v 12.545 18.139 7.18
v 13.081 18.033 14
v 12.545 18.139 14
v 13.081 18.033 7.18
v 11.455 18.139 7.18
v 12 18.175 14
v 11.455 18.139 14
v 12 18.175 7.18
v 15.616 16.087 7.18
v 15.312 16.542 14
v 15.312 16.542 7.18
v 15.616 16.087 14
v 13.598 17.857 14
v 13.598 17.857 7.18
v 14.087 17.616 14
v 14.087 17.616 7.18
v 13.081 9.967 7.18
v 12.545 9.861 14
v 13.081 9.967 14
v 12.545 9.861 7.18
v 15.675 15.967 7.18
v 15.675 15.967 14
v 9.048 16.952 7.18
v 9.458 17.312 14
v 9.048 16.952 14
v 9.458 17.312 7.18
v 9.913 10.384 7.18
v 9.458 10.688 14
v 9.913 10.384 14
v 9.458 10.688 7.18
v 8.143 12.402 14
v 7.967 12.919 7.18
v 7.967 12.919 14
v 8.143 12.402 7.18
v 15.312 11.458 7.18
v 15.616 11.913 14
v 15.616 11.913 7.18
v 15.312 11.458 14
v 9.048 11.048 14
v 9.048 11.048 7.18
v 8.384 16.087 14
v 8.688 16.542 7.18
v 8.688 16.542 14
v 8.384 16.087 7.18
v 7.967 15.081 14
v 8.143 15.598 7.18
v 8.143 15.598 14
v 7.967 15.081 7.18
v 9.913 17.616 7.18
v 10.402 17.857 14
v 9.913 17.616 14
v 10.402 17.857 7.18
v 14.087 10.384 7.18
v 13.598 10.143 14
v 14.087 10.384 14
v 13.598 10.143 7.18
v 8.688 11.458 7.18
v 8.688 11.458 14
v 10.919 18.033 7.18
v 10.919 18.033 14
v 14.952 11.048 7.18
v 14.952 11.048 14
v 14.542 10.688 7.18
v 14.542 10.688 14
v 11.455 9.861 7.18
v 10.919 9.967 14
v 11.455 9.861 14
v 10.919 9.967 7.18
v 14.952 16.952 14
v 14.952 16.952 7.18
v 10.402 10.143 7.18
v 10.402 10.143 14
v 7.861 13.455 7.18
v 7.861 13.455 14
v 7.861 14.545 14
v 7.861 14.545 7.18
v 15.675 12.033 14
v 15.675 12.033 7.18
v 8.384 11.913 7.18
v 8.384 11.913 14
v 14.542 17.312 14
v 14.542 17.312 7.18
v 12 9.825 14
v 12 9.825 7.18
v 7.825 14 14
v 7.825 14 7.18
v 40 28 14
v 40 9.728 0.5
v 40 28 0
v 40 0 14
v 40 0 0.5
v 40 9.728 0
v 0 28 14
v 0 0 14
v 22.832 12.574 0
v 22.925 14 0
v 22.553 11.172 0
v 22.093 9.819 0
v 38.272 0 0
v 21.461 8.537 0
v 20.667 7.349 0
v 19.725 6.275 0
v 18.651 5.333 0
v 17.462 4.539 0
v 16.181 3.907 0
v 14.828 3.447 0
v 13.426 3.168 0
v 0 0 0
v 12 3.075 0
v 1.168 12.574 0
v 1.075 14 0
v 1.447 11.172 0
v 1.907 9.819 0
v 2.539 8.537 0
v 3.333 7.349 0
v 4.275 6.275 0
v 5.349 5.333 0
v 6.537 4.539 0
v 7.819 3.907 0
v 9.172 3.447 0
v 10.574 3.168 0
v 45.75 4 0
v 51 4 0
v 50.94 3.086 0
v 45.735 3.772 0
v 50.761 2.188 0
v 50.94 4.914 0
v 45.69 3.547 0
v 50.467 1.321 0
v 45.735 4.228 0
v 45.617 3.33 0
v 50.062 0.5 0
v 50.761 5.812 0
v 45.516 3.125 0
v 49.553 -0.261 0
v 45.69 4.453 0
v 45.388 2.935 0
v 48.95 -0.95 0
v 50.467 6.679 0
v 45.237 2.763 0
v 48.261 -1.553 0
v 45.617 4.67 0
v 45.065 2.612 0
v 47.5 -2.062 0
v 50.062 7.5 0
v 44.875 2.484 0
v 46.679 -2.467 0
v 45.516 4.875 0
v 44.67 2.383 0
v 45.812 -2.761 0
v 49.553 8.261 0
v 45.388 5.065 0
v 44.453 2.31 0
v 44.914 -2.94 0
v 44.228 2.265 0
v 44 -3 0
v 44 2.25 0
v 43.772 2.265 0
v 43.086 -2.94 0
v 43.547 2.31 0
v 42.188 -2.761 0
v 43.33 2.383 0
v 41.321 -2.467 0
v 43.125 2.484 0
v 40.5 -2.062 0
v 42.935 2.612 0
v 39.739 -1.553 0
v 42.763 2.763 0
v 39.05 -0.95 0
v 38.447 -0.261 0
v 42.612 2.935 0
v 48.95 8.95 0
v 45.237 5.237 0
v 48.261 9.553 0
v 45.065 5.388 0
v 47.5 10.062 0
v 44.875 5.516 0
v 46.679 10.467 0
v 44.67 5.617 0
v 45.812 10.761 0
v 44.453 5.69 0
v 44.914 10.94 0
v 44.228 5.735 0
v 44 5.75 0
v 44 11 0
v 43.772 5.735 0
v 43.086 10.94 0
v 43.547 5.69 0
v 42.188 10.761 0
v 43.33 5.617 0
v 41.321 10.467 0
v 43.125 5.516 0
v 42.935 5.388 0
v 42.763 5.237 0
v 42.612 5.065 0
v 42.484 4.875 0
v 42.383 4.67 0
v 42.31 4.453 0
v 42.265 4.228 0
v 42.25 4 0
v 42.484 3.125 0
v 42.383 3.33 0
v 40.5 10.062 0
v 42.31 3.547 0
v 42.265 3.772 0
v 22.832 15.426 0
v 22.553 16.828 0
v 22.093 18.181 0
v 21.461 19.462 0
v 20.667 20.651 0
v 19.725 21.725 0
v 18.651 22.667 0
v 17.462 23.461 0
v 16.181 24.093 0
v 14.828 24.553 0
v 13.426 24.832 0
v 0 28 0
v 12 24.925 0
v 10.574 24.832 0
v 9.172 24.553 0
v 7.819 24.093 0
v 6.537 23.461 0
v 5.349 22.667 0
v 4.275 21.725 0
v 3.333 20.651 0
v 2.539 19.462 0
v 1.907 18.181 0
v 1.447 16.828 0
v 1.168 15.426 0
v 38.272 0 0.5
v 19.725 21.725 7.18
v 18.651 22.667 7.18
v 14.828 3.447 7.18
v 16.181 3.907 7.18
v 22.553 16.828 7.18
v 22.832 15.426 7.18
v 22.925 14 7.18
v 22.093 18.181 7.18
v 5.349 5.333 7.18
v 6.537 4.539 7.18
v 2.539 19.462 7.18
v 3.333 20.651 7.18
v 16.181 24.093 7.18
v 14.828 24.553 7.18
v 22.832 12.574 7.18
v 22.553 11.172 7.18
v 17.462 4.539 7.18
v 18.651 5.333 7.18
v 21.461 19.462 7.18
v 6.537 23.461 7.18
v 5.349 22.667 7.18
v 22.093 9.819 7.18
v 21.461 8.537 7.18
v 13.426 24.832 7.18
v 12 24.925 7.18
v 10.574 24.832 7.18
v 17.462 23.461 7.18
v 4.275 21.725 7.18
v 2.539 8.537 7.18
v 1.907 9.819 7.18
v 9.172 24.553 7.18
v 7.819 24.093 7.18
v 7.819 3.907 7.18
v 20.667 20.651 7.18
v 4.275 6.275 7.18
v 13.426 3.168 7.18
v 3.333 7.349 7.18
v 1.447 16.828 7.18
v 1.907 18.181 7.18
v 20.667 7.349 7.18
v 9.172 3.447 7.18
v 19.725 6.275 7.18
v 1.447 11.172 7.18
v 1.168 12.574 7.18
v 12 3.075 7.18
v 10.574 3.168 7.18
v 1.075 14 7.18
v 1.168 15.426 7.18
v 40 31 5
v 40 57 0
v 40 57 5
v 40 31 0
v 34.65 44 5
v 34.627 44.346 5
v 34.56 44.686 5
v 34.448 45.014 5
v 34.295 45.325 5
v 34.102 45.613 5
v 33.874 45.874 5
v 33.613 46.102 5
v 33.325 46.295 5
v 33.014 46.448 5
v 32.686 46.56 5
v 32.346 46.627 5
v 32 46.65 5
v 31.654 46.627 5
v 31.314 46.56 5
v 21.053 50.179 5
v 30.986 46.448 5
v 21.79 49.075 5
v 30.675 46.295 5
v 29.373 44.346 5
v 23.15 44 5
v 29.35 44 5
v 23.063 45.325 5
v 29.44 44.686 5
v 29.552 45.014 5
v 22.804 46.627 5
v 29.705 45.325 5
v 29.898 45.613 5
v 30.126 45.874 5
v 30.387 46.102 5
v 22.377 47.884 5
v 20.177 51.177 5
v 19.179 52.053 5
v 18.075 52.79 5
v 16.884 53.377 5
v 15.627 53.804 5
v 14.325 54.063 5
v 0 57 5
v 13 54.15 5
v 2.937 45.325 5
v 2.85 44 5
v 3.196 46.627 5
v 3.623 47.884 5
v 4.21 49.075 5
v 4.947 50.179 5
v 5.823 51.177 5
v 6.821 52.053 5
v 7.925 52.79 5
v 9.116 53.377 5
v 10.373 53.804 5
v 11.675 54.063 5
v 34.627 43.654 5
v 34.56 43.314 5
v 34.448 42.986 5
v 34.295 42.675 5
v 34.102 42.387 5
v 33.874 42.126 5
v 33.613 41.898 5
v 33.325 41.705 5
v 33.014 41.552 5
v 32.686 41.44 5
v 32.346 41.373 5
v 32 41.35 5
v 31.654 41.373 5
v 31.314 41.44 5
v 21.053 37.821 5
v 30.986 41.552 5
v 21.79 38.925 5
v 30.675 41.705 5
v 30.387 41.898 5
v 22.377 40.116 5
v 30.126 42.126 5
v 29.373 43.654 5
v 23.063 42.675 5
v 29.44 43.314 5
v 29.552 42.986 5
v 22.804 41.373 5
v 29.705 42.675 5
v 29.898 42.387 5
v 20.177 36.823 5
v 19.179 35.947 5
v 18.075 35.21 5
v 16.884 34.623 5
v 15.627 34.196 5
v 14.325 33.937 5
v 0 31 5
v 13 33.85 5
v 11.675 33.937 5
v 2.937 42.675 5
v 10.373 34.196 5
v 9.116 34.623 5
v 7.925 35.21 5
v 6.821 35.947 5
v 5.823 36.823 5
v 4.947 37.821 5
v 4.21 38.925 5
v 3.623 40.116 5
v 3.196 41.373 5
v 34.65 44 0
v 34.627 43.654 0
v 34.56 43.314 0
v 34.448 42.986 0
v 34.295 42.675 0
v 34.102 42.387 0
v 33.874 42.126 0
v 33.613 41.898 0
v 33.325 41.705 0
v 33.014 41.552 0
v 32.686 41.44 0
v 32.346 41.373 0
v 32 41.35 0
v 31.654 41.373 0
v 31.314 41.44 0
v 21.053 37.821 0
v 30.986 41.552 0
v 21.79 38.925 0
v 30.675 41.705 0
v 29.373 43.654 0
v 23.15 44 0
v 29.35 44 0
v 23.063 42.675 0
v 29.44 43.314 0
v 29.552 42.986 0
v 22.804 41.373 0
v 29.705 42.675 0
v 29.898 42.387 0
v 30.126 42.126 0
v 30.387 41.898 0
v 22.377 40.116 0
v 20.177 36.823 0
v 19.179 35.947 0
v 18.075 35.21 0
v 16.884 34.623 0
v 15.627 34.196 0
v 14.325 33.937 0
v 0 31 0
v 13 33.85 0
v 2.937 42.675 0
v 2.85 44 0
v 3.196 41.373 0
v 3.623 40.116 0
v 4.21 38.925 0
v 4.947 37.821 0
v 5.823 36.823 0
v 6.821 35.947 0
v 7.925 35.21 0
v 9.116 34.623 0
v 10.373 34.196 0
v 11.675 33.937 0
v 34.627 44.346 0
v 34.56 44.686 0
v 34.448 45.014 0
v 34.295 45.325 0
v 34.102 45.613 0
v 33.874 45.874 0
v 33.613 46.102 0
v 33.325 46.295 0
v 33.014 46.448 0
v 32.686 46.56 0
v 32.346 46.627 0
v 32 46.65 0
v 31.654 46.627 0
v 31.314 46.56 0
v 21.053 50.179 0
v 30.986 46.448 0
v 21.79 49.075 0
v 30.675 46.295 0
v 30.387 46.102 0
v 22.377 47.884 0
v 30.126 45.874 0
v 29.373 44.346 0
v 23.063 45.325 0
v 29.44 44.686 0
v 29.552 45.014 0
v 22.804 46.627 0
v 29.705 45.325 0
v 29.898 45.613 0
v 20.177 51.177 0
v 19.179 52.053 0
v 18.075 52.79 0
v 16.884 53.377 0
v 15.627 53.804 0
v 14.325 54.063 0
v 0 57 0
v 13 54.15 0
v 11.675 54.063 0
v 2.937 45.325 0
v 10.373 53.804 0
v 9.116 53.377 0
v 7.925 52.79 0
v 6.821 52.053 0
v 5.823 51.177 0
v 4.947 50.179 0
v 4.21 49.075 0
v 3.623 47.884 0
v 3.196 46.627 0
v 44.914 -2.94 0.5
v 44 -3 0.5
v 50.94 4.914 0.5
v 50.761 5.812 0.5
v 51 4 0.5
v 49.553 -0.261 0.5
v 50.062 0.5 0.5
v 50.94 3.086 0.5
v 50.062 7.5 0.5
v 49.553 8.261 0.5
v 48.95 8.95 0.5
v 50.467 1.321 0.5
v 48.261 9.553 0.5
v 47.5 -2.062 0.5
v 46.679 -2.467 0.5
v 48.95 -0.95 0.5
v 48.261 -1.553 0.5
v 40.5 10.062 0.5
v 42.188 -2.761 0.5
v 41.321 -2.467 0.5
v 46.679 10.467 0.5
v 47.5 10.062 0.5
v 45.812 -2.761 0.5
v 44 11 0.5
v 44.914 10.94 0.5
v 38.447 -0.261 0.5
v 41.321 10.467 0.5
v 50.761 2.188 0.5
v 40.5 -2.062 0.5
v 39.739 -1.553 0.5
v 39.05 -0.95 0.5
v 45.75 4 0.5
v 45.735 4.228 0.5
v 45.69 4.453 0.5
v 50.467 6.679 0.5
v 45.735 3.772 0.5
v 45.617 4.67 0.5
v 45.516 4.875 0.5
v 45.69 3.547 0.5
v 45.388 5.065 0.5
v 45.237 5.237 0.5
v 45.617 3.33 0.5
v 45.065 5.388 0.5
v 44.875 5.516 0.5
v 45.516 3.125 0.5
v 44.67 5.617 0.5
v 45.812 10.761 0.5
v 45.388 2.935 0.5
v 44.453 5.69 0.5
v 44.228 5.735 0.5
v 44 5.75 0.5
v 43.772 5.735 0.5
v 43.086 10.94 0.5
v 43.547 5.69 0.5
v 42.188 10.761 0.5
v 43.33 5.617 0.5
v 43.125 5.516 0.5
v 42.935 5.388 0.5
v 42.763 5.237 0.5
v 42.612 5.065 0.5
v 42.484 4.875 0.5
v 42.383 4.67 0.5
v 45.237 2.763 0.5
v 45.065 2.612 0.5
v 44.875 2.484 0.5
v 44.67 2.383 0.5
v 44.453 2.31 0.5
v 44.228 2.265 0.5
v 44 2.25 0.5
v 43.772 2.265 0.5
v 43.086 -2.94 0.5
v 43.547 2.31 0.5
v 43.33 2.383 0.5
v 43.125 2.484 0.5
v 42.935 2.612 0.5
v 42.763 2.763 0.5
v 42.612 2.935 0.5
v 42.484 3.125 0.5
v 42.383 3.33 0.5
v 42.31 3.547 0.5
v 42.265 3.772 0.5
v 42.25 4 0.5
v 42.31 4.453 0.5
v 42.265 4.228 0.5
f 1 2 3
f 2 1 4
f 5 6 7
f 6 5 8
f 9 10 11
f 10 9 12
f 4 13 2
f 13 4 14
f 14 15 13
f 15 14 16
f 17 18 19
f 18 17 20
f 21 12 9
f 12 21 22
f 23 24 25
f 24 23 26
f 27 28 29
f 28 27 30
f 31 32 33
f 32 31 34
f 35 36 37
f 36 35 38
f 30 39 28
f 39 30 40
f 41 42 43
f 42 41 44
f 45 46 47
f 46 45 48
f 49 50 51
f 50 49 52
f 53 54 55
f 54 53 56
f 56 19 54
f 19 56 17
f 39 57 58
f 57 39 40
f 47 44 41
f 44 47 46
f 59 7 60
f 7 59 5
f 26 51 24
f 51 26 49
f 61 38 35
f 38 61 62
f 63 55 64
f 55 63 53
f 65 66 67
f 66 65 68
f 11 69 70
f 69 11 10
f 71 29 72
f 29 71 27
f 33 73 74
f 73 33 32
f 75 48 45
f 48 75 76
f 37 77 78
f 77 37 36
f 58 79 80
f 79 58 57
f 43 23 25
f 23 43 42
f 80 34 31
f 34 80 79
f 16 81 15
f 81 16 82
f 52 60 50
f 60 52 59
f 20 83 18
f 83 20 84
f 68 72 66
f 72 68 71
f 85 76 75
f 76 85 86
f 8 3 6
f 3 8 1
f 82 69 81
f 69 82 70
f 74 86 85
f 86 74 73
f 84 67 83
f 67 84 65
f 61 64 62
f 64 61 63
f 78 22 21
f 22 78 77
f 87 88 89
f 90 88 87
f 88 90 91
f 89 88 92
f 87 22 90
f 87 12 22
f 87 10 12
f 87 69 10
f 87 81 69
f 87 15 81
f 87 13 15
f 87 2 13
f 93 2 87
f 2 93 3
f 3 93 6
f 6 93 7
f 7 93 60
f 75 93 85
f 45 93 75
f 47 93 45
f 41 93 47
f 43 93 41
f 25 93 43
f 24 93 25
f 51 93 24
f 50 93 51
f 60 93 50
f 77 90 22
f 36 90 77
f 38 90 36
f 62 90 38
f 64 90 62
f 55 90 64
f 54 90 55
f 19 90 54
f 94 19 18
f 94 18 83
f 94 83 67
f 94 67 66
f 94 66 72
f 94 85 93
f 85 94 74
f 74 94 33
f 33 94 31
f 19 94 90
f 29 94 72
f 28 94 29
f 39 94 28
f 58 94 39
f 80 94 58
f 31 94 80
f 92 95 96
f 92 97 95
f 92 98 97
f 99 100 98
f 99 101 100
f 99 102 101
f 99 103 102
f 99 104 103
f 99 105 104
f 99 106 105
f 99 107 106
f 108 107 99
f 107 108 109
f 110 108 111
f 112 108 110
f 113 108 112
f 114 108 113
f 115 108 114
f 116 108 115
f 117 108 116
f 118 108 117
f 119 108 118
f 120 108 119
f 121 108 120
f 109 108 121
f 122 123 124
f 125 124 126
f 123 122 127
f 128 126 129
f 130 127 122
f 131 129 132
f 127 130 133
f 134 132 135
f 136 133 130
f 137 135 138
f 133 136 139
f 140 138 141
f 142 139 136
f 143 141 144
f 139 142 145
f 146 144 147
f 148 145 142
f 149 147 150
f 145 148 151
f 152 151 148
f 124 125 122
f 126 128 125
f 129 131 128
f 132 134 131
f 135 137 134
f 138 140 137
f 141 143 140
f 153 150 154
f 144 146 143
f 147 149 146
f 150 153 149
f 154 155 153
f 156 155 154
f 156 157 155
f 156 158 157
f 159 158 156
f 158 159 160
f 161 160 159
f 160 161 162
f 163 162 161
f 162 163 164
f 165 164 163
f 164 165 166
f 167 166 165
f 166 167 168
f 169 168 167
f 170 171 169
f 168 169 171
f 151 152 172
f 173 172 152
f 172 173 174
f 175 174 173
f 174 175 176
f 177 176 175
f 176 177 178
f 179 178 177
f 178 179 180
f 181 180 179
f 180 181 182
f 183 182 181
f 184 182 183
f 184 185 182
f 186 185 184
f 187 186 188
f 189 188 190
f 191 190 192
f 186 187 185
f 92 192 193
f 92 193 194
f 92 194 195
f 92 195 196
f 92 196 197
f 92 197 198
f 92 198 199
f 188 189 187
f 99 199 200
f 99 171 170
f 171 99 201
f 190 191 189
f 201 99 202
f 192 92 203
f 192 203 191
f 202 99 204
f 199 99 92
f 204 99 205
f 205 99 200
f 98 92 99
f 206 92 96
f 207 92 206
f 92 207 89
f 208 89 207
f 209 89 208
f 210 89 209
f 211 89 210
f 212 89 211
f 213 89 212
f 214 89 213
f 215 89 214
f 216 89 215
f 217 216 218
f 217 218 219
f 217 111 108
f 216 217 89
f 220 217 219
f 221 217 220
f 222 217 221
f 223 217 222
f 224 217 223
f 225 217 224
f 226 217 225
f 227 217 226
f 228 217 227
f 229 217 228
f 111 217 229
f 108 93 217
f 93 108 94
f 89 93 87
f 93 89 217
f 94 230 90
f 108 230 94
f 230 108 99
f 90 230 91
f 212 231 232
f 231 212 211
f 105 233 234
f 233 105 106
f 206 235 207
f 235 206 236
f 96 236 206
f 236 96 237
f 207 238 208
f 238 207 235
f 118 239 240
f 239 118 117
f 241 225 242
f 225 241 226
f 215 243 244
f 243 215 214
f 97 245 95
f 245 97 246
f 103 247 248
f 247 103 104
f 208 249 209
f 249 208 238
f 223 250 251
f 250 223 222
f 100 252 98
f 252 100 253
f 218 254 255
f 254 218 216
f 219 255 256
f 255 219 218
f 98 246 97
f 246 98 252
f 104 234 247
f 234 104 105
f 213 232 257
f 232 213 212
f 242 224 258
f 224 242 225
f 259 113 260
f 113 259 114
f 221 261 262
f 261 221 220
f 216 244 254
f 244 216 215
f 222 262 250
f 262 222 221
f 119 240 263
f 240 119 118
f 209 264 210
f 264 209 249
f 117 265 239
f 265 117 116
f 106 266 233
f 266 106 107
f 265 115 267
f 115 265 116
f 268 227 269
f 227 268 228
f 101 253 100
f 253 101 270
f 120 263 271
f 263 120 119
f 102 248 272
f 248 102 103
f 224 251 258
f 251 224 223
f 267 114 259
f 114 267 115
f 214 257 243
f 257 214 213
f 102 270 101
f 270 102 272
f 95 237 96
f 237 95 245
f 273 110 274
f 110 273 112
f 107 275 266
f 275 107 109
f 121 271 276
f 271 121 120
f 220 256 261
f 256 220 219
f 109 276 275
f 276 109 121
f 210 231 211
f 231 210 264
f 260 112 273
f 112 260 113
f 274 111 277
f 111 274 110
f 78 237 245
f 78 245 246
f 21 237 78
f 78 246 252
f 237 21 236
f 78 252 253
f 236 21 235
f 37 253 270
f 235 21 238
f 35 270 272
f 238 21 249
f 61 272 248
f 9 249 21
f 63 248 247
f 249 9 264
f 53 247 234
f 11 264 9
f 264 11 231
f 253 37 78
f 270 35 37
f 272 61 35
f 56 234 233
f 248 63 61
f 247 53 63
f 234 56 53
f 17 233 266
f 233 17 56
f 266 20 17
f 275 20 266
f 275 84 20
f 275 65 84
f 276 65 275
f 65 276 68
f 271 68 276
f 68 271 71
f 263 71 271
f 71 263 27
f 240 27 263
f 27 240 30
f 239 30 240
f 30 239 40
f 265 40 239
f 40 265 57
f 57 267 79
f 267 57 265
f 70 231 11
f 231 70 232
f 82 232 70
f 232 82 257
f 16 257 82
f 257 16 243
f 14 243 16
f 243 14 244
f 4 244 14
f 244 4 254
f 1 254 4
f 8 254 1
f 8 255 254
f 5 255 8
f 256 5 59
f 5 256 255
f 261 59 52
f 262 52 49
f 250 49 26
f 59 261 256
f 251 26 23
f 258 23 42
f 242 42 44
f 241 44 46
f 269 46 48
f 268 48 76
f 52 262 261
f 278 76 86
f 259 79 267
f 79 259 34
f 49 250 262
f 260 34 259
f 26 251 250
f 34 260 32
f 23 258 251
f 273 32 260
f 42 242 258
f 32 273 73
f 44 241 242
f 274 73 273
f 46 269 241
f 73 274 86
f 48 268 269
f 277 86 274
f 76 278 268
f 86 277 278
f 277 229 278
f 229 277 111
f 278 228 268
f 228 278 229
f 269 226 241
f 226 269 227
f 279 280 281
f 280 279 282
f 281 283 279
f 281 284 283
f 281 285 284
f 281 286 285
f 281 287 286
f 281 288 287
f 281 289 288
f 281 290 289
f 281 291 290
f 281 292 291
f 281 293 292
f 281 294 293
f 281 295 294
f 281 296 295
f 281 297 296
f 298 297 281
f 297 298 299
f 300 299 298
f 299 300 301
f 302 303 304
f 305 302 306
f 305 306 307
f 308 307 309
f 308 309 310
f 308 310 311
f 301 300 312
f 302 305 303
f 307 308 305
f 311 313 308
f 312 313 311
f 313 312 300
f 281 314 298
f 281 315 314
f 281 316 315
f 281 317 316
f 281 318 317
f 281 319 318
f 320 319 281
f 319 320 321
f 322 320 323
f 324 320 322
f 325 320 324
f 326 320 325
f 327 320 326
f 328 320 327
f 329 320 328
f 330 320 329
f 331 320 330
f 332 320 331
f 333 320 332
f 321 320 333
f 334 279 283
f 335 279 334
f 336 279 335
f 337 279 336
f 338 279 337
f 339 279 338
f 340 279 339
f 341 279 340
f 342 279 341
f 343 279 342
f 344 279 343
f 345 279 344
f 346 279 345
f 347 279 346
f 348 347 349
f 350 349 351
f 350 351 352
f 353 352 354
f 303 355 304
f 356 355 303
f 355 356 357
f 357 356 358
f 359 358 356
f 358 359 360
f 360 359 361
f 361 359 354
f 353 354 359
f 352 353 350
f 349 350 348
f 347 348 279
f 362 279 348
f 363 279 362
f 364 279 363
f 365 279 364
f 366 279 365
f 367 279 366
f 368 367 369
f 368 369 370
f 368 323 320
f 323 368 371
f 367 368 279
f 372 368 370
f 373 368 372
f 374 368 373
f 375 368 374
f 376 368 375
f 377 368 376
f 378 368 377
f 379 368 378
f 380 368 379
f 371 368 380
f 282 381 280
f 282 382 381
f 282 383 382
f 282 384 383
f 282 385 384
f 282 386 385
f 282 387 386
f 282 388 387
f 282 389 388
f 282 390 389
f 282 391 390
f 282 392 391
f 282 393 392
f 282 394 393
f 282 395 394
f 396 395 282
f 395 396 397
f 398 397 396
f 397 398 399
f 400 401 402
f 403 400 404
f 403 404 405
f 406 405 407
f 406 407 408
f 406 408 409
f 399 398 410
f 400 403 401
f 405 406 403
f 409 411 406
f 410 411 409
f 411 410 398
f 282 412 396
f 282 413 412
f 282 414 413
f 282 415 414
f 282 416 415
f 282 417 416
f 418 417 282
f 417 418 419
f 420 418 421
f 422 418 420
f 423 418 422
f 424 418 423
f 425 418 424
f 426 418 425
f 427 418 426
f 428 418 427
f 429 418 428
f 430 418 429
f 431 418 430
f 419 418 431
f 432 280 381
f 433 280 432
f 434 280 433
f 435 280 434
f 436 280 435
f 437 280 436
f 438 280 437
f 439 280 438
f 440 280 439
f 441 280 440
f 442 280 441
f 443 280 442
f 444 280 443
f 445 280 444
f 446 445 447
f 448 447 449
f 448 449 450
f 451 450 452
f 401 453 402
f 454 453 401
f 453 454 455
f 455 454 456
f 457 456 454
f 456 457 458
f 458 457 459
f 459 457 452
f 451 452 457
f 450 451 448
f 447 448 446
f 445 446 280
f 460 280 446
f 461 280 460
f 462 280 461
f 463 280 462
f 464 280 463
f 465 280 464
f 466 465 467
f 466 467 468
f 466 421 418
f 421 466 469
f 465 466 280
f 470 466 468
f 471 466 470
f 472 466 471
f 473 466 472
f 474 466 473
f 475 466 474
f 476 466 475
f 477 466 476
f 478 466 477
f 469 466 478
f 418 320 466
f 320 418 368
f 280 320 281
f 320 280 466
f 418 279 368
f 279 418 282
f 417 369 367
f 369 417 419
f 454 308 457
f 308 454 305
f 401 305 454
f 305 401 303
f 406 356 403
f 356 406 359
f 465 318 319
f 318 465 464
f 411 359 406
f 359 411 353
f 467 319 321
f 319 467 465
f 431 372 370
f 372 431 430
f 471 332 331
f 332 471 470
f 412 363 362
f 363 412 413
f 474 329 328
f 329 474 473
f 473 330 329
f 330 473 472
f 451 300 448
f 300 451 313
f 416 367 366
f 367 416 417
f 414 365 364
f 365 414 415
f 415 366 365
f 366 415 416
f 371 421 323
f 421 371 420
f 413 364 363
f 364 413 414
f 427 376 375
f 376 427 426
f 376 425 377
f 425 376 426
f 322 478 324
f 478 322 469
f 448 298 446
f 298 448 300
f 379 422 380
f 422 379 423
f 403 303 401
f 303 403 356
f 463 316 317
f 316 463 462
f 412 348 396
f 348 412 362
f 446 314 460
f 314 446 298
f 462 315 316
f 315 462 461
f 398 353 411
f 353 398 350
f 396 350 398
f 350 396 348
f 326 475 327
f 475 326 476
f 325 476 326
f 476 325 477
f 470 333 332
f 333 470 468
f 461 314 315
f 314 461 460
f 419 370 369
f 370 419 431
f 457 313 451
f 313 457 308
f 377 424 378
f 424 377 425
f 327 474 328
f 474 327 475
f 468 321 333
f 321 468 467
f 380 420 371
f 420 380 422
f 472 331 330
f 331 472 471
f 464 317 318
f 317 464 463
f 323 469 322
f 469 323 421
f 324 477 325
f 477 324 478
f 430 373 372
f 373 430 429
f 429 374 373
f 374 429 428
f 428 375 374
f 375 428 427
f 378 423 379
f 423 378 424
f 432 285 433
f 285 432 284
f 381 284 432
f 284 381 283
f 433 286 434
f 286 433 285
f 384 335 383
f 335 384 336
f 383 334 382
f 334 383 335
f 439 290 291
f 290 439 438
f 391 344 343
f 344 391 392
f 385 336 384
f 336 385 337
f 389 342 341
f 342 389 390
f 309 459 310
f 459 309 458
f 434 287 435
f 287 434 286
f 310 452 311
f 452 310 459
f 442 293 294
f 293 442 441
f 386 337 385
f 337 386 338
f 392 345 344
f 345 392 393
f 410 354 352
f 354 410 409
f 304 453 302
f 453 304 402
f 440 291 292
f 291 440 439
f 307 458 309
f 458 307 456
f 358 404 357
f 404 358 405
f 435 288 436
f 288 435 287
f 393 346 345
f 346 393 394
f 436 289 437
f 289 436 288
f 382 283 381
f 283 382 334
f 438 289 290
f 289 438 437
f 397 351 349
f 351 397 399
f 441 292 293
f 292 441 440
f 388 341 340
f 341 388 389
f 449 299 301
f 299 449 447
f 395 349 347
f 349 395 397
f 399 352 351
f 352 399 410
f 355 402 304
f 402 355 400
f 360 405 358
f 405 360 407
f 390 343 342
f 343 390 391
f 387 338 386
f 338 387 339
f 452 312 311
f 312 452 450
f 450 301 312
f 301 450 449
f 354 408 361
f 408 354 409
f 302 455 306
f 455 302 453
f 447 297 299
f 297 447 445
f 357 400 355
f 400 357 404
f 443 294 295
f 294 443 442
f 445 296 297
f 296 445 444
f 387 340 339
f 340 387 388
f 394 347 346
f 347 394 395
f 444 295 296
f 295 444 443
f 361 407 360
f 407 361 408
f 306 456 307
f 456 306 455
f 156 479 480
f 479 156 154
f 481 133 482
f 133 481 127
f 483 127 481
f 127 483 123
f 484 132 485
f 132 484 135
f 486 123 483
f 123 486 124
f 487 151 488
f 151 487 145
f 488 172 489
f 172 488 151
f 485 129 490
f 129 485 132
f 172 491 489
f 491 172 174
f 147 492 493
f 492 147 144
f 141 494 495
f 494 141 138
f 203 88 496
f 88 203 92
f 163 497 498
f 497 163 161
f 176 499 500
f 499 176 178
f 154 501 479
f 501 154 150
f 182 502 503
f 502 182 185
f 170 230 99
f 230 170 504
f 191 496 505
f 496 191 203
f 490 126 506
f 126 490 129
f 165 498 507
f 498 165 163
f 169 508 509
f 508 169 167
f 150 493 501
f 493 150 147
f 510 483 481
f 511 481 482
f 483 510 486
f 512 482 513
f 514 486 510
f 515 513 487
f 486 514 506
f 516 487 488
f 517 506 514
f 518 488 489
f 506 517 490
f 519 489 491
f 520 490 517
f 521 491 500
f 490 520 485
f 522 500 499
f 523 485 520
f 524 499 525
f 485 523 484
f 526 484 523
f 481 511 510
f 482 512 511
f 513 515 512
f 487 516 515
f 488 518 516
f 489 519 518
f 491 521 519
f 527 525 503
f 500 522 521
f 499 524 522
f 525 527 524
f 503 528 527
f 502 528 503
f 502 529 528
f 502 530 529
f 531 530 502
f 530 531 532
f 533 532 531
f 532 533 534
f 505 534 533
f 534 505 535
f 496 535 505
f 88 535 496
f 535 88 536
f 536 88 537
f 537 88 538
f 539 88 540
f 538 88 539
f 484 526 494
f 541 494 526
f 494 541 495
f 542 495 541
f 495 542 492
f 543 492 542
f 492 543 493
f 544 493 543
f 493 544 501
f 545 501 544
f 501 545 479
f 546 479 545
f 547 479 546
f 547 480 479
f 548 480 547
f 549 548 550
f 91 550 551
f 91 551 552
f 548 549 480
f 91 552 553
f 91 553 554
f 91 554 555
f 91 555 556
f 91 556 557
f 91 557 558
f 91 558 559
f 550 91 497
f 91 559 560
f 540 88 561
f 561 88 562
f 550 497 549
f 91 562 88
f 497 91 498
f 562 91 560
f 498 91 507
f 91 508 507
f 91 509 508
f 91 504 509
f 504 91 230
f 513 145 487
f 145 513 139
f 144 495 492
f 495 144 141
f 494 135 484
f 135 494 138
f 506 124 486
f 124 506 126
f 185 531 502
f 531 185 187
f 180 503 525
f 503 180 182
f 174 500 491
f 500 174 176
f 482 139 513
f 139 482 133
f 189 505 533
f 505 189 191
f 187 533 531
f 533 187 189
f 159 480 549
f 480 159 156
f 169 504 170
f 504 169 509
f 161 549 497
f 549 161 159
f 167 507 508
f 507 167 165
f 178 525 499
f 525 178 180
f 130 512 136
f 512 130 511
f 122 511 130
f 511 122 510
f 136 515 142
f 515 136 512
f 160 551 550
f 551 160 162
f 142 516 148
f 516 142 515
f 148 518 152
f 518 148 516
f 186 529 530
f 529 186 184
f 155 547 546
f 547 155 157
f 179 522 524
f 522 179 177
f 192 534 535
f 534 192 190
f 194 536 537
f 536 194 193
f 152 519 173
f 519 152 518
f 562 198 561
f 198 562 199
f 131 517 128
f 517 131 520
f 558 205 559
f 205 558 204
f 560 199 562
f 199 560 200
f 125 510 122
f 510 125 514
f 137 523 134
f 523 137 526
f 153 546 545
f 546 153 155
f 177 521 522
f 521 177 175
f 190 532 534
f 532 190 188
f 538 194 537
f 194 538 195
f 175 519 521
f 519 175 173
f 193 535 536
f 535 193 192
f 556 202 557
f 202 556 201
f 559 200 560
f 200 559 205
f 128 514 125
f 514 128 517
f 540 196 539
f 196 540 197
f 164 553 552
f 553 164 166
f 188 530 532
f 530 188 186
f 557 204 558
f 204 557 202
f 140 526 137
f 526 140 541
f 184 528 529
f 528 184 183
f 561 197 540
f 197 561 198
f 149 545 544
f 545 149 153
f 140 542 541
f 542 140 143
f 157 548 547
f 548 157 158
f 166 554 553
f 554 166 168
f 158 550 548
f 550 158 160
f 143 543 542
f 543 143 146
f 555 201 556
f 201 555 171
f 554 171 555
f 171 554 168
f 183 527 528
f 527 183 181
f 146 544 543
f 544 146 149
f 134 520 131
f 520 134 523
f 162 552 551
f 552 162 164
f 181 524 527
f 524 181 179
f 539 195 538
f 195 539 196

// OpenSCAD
// file: parameters.scad
// =============================================================================
// Gen-BX — nightly 2026-10-11 (physics_scorer, honest magpylib watts)
// Gap reduction paid for by a bigger ring: the Gen-BU 8p/12c layout with the copper cut from 8.1 to 6.75 mm (magnet face to magnet face 10.70 → 9.35 mm, so Bz at the copper rises) and the lost window area won back radially, with the poles moved out to R71 and the bobbins stretched to r53–88. The scans show the thin-copper optimum only appears on the bigger ring (on R66 it gains far less), and R71 / Ø194 stator is the largest machine that still packs on one 410 mm plate.
// Clocking 0 deg (magnets N facing S) + D-flat keyed bore + index notch + flip-symmetric hole map.
// Windable 2-piece bobbin; turns = physics_scorer turns_fit; copper only between flanges.
// Steel back-iron: 2× Ø168 × 4.76 mm (3/16") mild-steel discs (steel_backiron_disc.dxf); magnets sit ON the steel
// (through-pockets) -> score with --back-iron. Night 2026-10-11.
// =============================================================================
topology            = "dual_rotor";

// --- Wire / winding (physics_scorer winding-fit) -------------------------------
wire_awg            = 26;
wire_od             = 0.45;     // insulated OD mm (bare 0.405)
fill_realistic      = 0.65;     // insulated-wire area / window (DENSE layered wind with a jig; scorer cap 0.65)
turns               = 410;       // = physics_scorer turns_fit (do NOT raise)
coil_former_type    = "bobbin";
coil_core_inset     = 14.87;     // radial copper build: hub = copper boundary inset by this
wind_build_axial    = 0.0;      // nothing proud of the flanges
wind_build_radial   = 0.0;

// --- Bobbin (base + lid) ---------------------------------------------------------
coil_id_r           = 53.00;    // copper boundary sector
coil_od_r           = 88.00;
span_deg            = 26.43;    // = pitch - 2*asin((wall+0.85)/coil_id_r) -> >=1.2 mm stator web
former_web          = 6.75;     // copper height between flanges (TALL copper: steel keeps Bz up)
flange_t            = 0.80;     // >= 0.8 mm FDM wall rule (tall winds push on the flanges)
wall                = 0.80;     // flange lip beyond copper
former_bare_h       = former_web + 2 * flange_t;
coil_envelope_h     = former_bare_h + 2 * wind_build_axial;
tab_w               = 7.0;
tab_len             = 7.0;
tab_h               = former_bare_h / 2;
pin_d               = 1.9;      // 1.75 mm filament locating pin
coil_mount_r        = coil_od_r + 0.2 + 4.0;
lead_y              = 1.6;
lead_slot_w         = 0.9;
lead_groove_d       = 0.6;

// --- Gap -------------------------------------------------------------------------
run_clear           = 0.50;     // rotor face -> flange
gap_spacer_h        = run_clear + wind_build_axial;
m2m                 = coil_envelope_h + 2 * run_clear;   // rotor face to rotor face (= gap_sleeve length)

// --- Stator ----------------------------------------------------------------------
coil_stations       = 12;
bay_clear           = 0.25;
stator_thick        = former_bare_h;                        // bobbins flush both faces
stator_od           = 194;
shaft_clear_stator  = 14.0;     // stator is static; gap sleeve OD 12 spins inside

// --- Rotor(s) --------------------------------------------------------------------
magnet_Br           = 1.43;     // N52
magnet_d_large      = 20.0;
magnet_h_large      = 5.0;      // one O20x5 per pocket
magnet_h_small      = 5.0;      // unused: no O5 pockets in this kit
halbach_magnetisation = "none";  // NO O5 assist magnets in this kit (scan: they lower the 4-pole score)
rotor_b_same_axis   = true;     // same-index magnets share one axis: N faces S across the gap
large_pocket_d      = 20.3;
small_pocket_d      = 5.3;
pocket_h            = 5.00;     // THROUGH the carrier: magnet back face sits on the steel disc (FLUSH seat: carrier = magnet height, magnet face level with the rotor face)
large_n             = 8;
R_large             = 71.0;
small_r_list        = [];       // no O5 pockets
carrier_od          = 168.0;
carrier_thick       = pocket_h;
hub_h               = 12.0;     // > steel_t + insert: radial set-screw clears the steel
hub_od              = 24.0;     // slim hub so the M4 brace rods fit at R~18 inside the coil ring
hub_insert_d        = 4.0;      // M3 heat-set insert, radial, bears on the D-flat
rotor_b_offset_deg  = 0.0;      // CLOCKING: magnets directly opposite
shaft_key           = "dflat";
dflat_depth         = 0.5;      // 8 mm shaft with 0.5 mm flat (7.5 across flat)
index_notch_d       = 3.0;

// --- Steel back-iron (buyable laser-cut) -------------------------------------------
steel_t             = 4.76;      // mild steel thickness (image method ignores it; sized from steel_flux.py so the return path stays well below saturation)
steel_center_hole   = 26.0;     // slips over the rotor hub (OD 24)
steel_od            = carrier_od;   // steel disc OD = rotor carrier OD

// --- Modular MAX interface ----------------------------------------------------------
shaft_bore          = 8.35;
dflat_x             = 4.0 - dflat_depth + (shaft_bore - 8.0) / 2;
bearing_d           = 21.85;
bearing_h           = 7.2;
m3_clear            = 3.5;
bolt_r_inner        = 30.0;     // M3 steel-disc clamp bolts (inside the magnet ring)
bolt_n_inner        = 4;
bolt_inner_angles   = [0, 90, 180, 270];
bolt_r_outer        = 44.0;     // second M3 steel-disc clamp ring
bolt_outer_angles   = [67.5, 112.5, 247.5, 292.5];
flange_bolt_r       = 91.5;     // frame rods: OUTSIDE the rotor OD (rotors spin inside them)
flange_bolt_n       = 4;
flange_bolt_offset  = 45.00;    // between coil stations -> never cuts a lead groove/tab
brace_r             = 18.0;
brace_d             = 4.3;      // temporary M4 jack rods (assembly only)
brace_n             = 4;
brace_angles        = [45, 135, 225, 315];          // flip-symmetric

spacer_pad_od       = 14.0;
spacer_pad_id       = m3_clear;
endbell_od          = 193.0;
endbell_thick       = 8.0;
endbell_shaft_clear = 10.0;
collar_h            = 10.0;
standoff_od         = 9.0;
frame_standoff_h    = run_clear + carrier_thick + hub_h + collar_h + 2.0;
sleeve_od           = 12.0;
plate_max_mm        = 410;

$fn = 64;
// main file
// Gen-BX — fit coupon: O20/O5 THROUGH pockets at carrier thickness (test on a steel offcut), 608 seat,
// D-flat bore, gap shim, and one bobbin-bay slice (bobbin footprint + bay_clear) to test former fit.
include <parameters.scad>;
$fn = 48;
// D-flat keyed bore: flat faces +X (angle 0 = magnet pocket 0 = index notch)
module dflat_bore(h) {
    intersection() {
        cylinder(d=shaft_bore, h=h);
        translate([-shaft_bore, -shaft_bore, 0]) cube([shaft_bore + dflat_x, 2*shaft_bore, h]);
    }
}
module sector_2d(r_in, r_out, ang) {
    polygon([
        for (a = [-ang/2 : ang/24 : ang/2]) [r_in*cos(a), r_in*sin(a)],
        for (a = [ang/2 : -ang/24 : -ang/2]) [r_out*cos(a), r_out*sin(a)]
    ]);
}
module footprint_2d() { offset(r=wall) sector_2d(coil_id_r, coil_od_r, span_deg); }
module hub_2d()       { offset(delta=-coil_core_inset) sector_2d(coil_id_r, coil_od_r, span_deg); }

block_w = 40; block_d = 28; block_h = 14;
difference() {
    cube([block_w, block_d, block_h]);
    translate([12, block_d/2, -0.02]) cylinder(d=bearing_d, h=bearing_h);
    translate([12, block_d/2, -0.1]) dflat_bore(block_h + 1);
}
translate([0, block_d + 3, 0]) difference() {
    cube([40, 26, carrier_thick]);
    translate([13, 13, -0.1]) cylinder(d=large_pocket_d, h=carrier_thick + 0.2);
    translate([32, 13, -0.1]) cylinder(d=small_pocket_d, h=carrier_thick + 0.2);
}
translate([block_w + 4, 4, 0])
    difference() {
        cylinder(d=spacer_pad_od, h=gap_spacer_h);
        translate([0, 0, -0.1]) cylinder(d=spacer_pad_id, h=gap_spacer_h + 0.2);
    }
